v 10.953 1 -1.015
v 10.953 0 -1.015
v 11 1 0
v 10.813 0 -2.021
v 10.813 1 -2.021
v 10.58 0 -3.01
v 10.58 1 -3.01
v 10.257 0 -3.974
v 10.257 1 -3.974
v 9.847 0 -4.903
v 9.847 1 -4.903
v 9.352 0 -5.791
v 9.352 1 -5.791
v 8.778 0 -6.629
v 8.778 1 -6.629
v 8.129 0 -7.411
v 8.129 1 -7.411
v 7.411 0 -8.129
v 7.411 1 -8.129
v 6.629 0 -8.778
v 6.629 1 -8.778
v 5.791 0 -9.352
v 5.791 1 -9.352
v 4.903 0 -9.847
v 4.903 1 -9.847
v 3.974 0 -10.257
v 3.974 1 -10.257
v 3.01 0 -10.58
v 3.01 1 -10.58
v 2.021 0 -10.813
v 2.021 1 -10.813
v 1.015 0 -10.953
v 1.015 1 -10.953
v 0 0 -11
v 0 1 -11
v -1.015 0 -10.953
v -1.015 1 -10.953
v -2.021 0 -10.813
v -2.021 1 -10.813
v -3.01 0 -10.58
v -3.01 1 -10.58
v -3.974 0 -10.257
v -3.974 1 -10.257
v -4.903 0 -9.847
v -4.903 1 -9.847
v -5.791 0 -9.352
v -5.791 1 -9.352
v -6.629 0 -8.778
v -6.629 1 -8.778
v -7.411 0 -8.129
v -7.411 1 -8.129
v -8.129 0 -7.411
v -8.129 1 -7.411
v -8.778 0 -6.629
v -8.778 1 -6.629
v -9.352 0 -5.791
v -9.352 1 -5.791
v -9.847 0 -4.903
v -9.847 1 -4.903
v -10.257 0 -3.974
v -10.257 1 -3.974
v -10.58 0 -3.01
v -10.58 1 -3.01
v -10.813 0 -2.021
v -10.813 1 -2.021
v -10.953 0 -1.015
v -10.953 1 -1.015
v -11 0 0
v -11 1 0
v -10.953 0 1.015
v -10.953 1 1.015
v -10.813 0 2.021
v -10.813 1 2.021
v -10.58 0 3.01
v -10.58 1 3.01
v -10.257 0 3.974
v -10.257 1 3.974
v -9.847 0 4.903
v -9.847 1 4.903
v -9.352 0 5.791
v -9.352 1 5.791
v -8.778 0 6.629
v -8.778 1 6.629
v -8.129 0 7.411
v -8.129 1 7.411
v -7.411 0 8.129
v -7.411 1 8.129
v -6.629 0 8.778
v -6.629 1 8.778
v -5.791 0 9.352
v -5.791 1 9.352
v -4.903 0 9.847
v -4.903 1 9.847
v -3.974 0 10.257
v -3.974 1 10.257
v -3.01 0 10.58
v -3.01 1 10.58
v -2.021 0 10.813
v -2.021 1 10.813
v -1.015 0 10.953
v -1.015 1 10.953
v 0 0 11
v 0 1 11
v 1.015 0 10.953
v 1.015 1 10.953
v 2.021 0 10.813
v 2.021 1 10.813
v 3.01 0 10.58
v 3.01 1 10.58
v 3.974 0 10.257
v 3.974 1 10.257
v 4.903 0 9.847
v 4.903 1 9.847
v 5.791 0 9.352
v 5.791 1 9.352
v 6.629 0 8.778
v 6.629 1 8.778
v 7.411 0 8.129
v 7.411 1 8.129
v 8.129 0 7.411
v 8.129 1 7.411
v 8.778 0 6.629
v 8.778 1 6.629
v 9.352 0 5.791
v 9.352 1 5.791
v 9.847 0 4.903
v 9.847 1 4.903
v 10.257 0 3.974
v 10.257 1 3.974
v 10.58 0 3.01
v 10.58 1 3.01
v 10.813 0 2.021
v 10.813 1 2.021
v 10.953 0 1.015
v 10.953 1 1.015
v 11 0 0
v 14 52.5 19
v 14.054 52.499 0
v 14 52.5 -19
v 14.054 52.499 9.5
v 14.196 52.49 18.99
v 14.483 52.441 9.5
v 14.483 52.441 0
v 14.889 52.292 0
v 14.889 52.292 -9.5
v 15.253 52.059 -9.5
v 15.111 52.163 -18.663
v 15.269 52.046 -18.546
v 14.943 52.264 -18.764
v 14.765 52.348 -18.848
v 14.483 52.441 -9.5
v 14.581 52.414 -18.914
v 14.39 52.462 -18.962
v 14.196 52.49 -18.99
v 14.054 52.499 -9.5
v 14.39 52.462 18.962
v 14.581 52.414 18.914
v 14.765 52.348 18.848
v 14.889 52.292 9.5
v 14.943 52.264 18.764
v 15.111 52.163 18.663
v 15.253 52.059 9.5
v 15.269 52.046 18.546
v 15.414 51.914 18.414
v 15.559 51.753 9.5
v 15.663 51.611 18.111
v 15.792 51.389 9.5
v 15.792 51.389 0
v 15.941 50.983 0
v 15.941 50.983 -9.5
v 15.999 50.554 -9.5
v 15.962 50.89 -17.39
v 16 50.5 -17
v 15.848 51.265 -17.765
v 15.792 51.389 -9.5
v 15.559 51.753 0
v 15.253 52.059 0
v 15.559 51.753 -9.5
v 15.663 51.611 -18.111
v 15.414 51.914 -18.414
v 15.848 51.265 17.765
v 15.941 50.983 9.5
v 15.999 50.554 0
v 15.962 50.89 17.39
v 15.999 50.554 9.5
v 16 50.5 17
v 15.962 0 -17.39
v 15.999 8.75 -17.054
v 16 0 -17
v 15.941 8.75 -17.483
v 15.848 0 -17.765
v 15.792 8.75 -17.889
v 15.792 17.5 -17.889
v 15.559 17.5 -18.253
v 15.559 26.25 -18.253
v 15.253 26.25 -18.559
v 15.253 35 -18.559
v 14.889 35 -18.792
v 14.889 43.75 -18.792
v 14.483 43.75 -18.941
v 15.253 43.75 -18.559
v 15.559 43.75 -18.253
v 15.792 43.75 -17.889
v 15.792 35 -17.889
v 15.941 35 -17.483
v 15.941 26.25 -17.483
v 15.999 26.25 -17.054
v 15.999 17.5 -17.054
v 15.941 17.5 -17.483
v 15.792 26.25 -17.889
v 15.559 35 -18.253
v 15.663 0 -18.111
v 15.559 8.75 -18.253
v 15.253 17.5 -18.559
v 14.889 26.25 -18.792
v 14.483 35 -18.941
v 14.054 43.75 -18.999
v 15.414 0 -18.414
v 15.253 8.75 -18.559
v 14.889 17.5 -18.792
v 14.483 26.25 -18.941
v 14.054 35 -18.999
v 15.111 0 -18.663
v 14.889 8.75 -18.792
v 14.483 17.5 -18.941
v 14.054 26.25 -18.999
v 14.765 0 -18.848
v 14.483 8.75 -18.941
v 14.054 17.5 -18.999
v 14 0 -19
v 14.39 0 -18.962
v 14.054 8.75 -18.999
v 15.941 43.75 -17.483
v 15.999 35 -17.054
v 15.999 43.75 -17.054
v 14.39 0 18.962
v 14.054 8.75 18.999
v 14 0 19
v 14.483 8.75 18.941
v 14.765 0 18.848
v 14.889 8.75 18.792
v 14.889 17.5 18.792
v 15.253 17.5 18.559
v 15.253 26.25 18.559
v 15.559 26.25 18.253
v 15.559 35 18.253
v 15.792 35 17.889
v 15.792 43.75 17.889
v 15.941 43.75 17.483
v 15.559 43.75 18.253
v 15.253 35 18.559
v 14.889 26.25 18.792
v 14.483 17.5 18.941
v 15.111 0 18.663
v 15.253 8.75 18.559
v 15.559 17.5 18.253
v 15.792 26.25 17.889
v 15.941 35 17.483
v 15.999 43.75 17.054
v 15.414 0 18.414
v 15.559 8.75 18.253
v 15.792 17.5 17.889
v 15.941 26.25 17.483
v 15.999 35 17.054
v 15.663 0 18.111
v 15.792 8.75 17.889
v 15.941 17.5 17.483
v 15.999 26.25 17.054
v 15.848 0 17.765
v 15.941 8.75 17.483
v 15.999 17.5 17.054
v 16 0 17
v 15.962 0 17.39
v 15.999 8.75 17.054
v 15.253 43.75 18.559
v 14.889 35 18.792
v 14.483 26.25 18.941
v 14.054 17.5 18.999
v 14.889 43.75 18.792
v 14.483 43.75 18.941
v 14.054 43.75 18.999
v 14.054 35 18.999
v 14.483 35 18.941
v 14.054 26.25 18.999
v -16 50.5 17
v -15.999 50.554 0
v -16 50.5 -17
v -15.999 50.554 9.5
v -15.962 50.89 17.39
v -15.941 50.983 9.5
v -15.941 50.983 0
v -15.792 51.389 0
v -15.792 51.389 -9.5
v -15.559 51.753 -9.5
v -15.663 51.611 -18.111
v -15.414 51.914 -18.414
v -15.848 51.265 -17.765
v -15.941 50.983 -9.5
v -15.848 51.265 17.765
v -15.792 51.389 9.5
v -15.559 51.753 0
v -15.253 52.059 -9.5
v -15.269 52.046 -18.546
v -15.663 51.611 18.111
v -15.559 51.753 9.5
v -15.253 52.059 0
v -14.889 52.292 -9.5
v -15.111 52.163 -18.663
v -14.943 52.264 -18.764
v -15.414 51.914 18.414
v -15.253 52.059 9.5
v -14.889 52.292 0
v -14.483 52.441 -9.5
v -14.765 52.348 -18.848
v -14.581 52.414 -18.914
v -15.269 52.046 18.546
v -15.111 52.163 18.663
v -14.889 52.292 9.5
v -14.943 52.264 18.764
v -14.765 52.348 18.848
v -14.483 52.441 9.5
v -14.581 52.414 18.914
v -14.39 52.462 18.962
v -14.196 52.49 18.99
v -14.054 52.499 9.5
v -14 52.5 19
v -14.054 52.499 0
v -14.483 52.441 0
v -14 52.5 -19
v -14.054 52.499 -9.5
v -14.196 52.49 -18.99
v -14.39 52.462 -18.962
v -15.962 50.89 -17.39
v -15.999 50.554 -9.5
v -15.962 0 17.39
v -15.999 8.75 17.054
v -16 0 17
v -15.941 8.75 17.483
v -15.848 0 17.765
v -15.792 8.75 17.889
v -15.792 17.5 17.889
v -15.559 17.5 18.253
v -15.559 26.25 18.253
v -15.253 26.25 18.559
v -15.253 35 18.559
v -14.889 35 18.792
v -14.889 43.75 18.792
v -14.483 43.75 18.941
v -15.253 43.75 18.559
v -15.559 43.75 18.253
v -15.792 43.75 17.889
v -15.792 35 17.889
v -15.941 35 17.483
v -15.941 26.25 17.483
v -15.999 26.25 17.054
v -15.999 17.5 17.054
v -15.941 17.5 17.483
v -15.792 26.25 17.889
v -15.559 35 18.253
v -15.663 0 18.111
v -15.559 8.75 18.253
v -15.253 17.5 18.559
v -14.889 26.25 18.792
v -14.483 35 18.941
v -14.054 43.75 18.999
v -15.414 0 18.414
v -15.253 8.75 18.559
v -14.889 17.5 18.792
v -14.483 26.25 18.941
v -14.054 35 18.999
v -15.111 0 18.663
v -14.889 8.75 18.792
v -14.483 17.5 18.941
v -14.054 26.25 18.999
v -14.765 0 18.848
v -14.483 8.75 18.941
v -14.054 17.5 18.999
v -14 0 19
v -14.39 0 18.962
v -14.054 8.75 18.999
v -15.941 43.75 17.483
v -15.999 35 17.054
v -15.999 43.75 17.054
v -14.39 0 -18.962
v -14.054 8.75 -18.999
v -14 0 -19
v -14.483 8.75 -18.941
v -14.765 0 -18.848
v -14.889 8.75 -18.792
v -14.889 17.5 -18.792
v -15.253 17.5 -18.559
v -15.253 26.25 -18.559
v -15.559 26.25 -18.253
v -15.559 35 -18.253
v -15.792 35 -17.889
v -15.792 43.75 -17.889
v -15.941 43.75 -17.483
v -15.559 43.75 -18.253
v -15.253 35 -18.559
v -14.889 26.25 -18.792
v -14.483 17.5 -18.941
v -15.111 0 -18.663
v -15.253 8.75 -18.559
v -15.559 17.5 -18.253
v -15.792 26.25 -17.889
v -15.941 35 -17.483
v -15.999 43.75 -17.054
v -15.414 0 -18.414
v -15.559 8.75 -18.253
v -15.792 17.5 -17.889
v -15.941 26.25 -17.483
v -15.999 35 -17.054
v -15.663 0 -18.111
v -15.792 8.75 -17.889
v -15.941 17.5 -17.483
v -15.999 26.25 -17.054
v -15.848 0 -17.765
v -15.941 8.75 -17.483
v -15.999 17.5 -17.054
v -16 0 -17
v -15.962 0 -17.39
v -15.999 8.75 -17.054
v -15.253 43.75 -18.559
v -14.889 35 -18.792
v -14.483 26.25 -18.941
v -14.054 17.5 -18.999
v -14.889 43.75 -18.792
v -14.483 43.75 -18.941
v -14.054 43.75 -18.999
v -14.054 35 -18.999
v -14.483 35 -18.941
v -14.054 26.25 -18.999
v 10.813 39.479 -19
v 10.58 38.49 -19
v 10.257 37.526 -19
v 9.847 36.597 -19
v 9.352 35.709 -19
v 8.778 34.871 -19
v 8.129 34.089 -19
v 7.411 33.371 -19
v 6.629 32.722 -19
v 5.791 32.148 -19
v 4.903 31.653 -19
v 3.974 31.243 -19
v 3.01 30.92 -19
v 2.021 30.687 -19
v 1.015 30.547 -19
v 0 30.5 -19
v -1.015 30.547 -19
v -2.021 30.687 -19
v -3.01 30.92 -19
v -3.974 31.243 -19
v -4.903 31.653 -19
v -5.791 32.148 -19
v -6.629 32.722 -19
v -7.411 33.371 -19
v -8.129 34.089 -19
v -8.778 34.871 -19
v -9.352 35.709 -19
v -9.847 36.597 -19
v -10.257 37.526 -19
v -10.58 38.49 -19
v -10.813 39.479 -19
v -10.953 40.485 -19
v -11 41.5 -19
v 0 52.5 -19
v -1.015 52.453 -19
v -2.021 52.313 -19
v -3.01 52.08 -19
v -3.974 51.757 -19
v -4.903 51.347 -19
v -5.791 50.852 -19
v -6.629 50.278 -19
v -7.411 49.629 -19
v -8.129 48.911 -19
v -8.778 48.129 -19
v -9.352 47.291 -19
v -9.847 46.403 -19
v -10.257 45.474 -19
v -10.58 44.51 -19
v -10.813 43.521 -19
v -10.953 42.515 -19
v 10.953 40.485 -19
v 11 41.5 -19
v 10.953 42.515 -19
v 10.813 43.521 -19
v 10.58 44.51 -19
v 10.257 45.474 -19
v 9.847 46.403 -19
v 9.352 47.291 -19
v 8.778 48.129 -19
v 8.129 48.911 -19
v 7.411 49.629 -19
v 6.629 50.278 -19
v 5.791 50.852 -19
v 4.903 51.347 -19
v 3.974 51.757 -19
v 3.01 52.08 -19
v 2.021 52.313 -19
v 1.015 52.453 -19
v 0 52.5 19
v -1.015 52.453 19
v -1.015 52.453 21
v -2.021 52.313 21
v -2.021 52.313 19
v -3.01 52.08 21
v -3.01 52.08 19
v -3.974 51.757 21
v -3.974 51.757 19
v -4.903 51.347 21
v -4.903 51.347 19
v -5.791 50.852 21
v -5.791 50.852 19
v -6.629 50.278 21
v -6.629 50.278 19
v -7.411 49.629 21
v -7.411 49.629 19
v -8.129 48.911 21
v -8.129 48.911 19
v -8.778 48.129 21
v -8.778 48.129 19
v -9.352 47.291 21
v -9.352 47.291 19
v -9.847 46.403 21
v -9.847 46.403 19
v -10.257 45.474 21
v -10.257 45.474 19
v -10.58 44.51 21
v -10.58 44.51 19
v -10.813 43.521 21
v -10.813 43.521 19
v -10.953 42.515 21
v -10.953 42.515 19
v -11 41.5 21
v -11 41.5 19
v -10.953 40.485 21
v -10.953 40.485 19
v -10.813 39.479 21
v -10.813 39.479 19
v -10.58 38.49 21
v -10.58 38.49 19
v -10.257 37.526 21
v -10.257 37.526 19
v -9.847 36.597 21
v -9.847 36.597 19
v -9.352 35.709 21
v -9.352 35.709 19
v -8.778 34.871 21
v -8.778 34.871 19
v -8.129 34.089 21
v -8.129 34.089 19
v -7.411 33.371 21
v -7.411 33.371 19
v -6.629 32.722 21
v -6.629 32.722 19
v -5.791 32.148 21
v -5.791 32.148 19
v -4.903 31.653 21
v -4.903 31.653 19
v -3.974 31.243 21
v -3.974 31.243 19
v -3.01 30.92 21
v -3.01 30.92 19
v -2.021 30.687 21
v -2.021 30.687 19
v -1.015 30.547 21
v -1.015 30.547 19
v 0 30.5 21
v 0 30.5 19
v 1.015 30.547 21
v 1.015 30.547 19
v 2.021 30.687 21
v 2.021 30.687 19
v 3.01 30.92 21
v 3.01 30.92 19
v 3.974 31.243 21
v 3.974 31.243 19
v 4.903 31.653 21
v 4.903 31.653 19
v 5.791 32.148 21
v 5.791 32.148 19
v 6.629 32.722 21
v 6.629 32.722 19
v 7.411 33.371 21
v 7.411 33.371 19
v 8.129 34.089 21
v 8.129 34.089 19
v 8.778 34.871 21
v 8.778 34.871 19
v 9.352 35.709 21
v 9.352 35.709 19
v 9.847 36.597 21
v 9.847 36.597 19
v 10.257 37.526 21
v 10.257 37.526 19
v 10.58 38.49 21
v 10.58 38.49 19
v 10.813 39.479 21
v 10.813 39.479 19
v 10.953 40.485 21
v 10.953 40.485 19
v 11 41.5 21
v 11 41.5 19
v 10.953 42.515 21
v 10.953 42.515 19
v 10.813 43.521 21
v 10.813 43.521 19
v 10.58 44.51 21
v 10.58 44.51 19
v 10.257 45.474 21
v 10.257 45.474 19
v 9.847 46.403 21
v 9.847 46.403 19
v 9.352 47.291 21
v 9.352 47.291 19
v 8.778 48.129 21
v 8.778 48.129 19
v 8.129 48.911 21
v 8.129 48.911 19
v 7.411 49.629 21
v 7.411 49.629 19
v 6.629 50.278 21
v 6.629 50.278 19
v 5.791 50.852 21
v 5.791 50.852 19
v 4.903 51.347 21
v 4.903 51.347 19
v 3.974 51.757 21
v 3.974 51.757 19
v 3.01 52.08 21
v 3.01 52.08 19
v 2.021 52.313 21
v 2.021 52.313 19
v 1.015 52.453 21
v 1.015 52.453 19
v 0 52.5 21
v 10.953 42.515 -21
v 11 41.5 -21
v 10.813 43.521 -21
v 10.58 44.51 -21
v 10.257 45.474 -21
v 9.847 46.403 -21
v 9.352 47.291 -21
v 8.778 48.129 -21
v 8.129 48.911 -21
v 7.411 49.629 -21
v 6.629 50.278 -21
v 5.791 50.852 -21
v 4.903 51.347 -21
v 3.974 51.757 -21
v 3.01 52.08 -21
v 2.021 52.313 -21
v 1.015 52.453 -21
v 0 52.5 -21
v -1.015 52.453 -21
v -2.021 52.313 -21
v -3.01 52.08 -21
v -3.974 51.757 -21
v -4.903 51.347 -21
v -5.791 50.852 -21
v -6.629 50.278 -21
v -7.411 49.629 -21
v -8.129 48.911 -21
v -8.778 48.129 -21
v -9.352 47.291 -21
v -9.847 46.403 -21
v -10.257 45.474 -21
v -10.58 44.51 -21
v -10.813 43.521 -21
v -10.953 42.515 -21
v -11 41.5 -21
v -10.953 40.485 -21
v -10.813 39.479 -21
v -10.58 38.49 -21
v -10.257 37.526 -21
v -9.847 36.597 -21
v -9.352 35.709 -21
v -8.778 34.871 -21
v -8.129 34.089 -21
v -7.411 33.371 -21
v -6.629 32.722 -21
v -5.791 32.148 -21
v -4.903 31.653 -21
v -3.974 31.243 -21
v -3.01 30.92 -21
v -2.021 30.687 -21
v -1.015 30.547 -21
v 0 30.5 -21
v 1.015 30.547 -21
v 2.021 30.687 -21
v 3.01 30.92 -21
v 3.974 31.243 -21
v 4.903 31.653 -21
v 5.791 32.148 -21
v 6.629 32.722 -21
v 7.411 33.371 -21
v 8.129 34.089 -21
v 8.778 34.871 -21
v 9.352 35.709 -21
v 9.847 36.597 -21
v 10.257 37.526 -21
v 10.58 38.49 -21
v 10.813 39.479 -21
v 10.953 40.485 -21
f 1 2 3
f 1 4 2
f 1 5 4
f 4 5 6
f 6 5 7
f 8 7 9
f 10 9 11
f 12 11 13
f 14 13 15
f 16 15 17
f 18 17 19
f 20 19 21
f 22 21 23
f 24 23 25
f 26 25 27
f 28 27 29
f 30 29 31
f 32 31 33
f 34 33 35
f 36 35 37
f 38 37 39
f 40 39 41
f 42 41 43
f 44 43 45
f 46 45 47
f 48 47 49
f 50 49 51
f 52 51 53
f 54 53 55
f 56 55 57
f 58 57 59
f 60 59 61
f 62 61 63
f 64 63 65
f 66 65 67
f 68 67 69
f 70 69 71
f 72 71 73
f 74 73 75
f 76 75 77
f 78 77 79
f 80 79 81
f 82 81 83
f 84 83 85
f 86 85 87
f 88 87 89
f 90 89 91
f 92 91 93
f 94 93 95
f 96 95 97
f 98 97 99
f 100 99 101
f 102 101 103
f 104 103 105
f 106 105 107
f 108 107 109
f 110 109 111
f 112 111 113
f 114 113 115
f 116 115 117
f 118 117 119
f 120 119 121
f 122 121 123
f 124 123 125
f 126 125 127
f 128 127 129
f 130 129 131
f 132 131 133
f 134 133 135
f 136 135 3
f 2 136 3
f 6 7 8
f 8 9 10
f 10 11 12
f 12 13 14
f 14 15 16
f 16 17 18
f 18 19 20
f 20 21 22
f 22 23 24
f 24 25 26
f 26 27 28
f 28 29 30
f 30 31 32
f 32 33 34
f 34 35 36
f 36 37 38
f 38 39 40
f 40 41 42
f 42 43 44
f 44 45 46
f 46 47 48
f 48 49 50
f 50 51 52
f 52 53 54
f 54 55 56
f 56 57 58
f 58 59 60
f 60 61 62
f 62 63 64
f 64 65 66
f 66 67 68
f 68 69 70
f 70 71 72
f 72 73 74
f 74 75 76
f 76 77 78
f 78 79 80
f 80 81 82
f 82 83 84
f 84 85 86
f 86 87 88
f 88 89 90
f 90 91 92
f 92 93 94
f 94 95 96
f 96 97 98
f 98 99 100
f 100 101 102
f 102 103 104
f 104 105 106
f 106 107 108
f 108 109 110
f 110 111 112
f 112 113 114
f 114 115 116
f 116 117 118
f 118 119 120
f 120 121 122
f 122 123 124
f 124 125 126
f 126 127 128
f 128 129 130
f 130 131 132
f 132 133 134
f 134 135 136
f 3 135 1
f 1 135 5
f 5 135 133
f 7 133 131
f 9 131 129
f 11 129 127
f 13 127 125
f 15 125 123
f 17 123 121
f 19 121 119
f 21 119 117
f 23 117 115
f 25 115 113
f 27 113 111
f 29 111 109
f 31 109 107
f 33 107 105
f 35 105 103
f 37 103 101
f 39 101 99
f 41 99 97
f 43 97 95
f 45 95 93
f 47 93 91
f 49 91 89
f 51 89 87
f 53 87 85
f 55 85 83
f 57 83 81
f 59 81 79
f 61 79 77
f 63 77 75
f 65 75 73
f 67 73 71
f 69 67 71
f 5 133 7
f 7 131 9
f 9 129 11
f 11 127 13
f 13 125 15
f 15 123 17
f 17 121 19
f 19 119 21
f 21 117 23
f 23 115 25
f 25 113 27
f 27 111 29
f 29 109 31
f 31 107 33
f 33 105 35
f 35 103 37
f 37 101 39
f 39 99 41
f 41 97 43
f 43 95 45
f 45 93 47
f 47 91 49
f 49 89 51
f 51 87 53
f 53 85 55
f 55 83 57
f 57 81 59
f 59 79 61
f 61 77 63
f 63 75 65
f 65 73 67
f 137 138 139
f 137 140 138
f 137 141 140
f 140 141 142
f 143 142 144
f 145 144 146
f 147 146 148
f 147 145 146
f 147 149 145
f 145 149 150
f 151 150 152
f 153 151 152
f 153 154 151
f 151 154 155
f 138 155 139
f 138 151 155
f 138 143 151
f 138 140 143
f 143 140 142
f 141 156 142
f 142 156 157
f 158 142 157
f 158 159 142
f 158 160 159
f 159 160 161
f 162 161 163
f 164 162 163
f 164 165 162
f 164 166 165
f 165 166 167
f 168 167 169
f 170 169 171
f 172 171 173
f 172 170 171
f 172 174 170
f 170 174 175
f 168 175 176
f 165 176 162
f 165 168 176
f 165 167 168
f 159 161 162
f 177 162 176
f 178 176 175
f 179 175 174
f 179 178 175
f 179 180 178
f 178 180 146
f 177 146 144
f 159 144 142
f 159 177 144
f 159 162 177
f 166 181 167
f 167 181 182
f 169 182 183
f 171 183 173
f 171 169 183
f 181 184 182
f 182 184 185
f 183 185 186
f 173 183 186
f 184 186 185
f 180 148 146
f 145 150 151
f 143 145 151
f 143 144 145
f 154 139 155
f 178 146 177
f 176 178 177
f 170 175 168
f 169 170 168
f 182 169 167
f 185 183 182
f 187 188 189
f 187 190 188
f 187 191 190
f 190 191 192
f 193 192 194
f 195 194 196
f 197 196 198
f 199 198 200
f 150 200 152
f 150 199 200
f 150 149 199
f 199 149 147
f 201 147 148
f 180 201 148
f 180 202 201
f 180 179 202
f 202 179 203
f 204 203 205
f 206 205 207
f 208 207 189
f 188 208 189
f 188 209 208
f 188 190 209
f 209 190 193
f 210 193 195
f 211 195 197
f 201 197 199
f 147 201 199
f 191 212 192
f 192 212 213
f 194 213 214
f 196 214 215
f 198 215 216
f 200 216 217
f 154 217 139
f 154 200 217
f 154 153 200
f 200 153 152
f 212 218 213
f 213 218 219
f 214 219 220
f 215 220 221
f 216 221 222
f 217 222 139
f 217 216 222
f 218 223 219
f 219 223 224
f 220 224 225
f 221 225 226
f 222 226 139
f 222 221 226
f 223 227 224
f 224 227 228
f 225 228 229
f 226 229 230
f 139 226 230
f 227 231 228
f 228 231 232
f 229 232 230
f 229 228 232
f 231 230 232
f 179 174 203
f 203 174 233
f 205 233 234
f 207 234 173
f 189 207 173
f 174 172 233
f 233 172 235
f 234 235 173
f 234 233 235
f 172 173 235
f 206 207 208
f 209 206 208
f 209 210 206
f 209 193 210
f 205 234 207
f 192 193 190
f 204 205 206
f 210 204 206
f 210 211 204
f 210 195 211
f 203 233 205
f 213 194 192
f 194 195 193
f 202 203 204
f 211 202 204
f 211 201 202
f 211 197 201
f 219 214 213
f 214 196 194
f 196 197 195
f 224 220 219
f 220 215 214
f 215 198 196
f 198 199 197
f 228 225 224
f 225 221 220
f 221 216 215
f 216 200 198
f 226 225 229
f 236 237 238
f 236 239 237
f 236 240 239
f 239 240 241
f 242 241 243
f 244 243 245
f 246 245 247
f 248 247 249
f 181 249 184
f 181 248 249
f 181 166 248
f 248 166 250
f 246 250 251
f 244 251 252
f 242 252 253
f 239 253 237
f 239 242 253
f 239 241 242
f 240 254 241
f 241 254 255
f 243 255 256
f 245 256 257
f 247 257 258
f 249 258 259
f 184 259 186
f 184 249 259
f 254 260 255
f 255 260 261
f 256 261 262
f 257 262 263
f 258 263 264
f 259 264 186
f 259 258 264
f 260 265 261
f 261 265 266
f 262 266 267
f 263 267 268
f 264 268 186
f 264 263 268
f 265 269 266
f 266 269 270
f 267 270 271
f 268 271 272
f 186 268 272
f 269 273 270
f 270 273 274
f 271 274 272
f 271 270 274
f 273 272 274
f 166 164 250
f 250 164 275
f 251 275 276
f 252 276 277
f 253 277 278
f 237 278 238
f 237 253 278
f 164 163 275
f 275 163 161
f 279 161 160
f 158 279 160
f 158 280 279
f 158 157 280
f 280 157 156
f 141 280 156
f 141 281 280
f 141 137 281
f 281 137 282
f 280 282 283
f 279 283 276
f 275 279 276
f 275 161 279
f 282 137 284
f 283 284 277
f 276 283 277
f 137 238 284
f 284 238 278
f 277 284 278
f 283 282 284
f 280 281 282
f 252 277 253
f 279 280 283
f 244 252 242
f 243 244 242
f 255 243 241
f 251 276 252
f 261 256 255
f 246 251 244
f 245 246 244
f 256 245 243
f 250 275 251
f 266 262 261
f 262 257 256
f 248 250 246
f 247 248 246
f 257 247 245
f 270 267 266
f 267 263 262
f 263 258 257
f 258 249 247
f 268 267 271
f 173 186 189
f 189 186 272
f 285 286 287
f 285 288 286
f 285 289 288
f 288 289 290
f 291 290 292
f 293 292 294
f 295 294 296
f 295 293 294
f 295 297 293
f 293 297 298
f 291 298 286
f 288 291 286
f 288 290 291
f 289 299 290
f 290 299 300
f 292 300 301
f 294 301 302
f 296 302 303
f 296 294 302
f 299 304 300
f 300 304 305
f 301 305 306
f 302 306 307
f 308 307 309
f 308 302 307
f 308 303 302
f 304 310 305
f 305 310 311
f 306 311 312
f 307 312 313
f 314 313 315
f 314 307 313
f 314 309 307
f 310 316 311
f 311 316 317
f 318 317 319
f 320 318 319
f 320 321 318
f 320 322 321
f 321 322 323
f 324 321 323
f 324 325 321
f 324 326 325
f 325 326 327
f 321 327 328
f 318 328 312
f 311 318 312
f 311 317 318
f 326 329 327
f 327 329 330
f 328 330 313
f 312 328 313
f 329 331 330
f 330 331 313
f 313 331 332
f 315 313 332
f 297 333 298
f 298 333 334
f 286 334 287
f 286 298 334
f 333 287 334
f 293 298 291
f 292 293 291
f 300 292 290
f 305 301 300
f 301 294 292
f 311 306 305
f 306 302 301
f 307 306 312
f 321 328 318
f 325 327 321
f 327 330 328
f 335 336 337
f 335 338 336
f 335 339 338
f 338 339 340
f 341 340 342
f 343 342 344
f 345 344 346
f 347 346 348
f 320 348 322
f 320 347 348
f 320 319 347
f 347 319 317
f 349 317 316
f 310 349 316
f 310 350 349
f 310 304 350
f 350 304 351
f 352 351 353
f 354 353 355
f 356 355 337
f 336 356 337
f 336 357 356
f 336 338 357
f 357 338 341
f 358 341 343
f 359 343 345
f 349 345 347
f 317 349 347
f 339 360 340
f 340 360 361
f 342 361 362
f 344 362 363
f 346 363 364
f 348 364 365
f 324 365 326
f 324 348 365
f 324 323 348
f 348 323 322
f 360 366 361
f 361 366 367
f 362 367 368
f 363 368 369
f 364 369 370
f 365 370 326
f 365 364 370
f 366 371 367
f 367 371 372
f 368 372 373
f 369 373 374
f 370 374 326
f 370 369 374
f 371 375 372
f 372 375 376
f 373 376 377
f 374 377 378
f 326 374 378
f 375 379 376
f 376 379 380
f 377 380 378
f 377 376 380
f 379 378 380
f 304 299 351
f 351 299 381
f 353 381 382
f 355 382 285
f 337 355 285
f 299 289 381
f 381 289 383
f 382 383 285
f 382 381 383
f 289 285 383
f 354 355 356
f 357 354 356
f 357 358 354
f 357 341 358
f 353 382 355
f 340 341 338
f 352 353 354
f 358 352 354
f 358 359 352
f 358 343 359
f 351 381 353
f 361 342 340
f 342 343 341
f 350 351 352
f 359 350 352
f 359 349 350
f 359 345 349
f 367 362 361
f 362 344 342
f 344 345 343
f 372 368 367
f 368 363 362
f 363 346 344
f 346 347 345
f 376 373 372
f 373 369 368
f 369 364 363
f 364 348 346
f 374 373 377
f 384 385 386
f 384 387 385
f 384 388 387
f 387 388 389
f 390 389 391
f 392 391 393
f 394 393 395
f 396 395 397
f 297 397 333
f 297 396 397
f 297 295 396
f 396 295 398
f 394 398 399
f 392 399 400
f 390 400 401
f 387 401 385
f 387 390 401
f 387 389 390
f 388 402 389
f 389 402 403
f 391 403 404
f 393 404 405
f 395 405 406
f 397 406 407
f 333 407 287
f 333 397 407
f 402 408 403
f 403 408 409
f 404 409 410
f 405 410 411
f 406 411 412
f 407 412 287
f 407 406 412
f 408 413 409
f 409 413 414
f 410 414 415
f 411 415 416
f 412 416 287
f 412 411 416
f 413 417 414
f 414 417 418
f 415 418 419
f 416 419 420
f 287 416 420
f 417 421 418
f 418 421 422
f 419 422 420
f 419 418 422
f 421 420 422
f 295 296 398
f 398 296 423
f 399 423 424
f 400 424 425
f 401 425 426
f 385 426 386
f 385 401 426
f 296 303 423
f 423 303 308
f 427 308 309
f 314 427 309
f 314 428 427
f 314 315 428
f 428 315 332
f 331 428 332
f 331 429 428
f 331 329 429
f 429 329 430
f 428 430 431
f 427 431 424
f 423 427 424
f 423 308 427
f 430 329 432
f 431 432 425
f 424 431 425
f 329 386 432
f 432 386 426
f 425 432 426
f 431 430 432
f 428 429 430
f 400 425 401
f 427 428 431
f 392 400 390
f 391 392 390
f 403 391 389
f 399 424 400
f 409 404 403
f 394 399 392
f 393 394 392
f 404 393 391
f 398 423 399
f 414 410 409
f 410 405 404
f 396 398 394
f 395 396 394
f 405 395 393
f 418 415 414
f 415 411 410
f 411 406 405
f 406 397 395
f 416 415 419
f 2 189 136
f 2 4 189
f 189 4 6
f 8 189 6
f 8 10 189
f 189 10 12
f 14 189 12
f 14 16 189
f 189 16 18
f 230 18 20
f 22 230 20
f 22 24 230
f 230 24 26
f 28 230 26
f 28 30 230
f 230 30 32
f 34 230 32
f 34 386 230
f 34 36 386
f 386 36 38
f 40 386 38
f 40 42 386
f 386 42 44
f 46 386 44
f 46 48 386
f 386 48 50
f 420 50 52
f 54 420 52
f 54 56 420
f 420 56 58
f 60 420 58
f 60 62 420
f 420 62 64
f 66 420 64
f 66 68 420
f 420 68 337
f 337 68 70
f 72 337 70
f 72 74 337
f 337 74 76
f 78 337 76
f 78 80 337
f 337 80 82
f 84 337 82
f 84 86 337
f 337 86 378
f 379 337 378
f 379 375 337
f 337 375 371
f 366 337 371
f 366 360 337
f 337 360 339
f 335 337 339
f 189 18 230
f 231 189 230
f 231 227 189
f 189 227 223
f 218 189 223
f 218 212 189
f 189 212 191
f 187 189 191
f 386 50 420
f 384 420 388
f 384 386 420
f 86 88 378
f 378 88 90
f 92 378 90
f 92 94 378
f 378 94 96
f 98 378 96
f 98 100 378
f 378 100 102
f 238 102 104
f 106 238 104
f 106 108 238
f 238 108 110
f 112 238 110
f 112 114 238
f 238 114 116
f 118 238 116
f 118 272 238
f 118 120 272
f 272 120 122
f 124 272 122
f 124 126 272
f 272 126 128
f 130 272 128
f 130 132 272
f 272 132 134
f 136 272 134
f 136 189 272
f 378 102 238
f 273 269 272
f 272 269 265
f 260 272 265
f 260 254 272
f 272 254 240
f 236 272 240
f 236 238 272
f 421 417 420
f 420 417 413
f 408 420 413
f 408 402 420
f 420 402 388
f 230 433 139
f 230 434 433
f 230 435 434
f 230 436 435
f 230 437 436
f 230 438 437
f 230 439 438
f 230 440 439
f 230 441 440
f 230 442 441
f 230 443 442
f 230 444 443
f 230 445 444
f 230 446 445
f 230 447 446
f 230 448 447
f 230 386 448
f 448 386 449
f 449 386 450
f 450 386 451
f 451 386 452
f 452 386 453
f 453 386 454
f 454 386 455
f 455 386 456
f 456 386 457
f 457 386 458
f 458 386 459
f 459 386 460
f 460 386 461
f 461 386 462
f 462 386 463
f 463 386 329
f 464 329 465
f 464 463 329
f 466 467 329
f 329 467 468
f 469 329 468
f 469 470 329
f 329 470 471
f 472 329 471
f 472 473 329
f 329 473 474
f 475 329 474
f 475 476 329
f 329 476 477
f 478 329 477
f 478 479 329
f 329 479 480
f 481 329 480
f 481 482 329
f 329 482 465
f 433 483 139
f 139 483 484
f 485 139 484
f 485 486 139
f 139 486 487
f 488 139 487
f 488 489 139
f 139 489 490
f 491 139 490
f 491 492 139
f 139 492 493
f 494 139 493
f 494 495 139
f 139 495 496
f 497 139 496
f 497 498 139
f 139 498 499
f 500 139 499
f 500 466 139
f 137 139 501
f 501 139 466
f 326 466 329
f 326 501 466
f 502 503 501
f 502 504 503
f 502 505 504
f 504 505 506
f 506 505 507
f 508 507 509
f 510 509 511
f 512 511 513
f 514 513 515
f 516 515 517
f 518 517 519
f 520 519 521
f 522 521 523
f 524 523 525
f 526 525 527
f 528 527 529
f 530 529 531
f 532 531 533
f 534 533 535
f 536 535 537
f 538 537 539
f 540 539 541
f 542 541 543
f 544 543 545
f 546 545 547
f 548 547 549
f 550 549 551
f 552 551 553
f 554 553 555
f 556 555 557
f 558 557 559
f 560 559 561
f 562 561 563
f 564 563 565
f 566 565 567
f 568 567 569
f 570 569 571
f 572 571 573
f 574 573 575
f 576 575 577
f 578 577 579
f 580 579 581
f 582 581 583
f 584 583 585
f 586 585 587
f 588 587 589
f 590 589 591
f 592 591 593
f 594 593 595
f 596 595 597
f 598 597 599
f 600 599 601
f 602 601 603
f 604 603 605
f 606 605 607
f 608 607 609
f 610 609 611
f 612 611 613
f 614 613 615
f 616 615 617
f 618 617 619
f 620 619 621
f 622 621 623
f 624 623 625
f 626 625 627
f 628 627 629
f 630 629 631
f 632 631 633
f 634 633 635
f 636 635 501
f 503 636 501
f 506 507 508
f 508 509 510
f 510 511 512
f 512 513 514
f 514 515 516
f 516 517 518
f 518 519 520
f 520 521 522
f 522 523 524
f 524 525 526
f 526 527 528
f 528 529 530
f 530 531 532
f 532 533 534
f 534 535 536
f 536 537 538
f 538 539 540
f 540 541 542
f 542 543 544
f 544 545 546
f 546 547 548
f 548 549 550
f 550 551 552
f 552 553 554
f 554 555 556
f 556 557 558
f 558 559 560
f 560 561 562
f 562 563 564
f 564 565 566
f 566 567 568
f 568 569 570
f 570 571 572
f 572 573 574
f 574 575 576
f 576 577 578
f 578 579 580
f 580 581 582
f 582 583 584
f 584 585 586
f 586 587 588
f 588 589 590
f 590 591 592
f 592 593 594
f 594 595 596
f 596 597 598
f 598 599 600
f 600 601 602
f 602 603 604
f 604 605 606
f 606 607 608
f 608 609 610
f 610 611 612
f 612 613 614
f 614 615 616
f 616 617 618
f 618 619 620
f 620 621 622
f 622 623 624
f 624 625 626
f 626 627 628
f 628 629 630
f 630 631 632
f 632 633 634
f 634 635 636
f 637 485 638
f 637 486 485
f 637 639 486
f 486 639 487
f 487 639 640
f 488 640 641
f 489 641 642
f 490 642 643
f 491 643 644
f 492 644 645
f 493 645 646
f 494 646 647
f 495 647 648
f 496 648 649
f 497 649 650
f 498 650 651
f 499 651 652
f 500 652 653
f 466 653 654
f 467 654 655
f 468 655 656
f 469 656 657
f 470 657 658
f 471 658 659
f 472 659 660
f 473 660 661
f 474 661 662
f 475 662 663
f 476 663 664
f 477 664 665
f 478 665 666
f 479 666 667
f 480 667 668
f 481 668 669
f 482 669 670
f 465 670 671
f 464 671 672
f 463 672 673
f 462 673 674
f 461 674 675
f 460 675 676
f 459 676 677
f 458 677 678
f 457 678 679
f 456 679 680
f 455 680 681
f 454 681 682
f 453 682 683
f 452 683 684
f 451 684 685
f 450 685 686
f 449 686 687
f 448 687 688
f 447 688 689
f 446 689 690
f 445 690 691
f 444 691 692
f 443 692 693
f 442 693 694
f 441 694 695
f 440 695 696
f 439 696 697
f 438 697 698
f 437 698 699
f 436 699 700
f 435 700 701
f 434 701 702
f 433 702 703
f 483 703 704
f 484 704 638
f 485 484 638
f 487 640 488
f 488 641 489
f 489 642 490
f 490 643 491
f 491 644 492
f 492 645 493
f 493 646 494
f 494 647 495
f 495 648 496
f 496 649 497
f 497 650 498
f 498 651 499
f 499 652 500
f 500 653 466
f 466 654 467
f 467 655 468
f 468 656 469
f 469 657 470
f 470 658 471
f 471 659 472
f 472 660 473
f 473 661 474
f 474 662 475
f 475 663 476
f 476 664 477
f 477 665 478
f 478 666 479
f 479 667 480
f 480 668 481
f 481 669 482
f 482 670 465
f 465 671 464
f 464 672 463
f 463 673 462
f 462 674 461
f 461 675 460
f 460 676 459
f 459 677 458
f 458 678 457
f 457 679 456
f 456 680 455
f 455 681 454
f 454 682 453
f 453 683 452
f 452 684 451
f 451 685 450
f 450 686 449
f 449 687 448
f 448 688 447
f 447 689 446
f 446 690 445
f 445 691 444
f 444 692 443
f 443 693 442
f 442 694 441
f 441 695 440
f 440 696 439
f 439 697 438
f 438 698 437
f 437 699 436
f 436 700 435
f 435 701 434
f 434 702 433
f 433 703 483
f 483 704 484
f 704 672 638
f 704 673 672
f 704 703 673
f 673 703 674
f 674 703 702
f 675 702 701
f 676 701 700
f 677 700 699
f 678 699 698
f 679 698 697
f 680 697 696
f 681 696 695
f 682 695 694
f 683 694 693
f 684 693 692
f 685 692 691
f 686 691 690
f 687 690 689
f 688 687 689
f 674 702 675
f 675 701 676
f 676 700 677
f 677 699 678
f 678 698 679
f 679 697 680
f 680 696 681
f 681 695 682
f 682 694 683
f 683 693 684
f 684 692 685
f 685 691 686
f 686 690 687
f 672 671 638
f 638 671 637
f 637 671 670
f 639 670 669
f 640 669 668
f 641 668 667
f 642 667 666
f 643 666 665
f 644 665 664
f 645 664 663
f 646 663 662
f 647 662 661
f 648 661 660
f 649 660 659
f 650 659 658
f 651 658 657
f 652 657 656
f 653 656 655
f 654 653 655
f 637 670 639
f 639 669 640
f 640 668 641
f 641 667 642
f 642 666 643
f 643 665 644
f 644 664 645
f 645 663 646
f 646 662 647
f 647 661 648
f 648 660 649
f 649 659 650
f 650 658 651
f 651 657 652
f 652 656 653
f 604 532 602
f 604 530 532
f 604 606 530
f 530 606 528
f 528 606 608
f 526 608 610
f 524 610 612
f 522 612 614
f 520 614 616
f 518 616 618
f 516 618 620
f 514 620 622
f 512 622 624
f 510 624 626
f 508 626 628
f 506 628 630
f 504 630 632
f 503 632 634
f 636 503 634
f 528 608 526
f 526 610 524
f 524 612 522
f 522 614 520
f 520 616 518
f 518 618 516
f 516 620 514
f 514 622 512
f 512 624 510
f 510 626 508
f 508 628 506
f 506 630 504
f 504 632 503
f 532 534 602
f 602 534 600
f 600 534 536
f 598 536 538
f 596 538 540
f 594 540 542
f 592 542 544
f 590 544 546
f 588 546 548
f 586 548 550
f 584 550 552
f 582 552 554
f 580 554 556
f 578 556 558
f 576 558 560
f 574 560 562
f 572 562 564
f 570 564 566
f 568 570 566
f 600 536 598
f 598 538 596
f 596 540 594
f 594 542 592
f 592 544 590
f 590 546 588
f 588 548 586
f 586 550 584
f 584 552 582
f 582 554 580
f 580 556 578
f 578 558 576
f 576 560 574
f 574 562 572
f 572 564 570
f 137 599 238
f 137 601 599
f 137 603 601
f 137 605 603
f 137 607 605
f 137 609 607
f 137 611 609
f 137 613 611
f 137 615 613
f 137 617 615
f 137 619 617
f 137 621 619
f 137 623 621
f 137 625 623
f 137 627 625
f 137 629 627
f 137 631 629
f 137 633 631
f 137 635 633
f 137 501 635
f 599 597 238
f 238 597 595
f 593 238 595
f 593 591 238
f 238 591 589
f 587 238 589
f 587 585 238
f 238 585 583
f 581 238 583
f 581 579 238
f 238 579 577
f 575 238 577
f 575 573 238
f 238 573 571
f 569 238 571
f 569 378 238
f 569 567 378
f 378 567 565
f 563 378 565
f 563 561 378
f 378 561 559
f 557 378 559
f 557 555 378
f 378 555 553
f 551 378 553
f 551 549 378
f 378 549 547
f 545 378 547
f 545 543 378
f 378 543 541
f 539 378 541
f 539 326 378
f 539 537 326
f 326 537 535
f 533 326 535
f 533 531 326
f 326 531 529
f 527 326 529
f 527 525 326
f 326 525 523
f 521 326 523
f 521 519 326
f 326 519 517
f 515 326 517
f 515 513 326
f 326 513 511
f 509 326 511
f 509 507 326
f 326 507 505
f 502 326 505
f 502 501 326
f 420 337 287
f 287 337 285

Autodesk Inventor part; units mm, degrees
ref_plane "YZ Plane" through (0, 0, 0) normal (1, 0, 0) x (0, 1, 0)
ref_plane "XZ Plane" through (0, 0, 0) normal (0, 1, 0) x (-1, 0, 0)
ref_plane "XY Plane" through (0, 0, 0) normal (0, 0, 1) x (1, 0, 0)
sketch "Sketch1" plane through (0, 0, 0) normal (0, 0, 1) x (1, 0, 0)
  line L0 (0, 0) -> (0, 41.5)
  circle A0 centre (0, 41.5) radius 11
  line L1 (0, 41.5) -> (0, 52.5)
  line L2 (0, 52.5) -> (16, 52.5)
  line L3 (16, 52.5) -> (16, 0)
  line L4 (16, 0) -> (0, 0)
  line L5 (0, 0) -> (-16, 0)
  line L6 (-16, 0) -> (-16, 52.5)
  line L7 (-16, 52.5) -> (0, 52.5)
  dimension "d1" = 22
  dimension "d0" = 41.5
  dimension "d2" = 16
  dimension "d3" = 16
extrude "Extrusion1" add sketch "Sketch1" along normal mid plane 38
extrude "Extrusion2" add sketch "Sketch1" along normal mid plane 42 contours A0 L1 L0 | L0 L1 A0
fillet "Fillet1" radius 2 6 edges at (-16, 26.25, 19) (-16, 26.25, -19) (-16, 52.5, 0) (16, 52.5, 0) (16, 26.25, 19) (16, 26.25, -19)
sketch "Sketch2" plane through (-14, 0, 19) normal (0, -1, 0) x (1, 0, 0)
  circle A0 centre (14, -19) radius 11
  dimension "d9" = 22
extrude "Extrusion3" cut sketch "Sketch2" against normal blind 1
properties part number "Shoulder"
